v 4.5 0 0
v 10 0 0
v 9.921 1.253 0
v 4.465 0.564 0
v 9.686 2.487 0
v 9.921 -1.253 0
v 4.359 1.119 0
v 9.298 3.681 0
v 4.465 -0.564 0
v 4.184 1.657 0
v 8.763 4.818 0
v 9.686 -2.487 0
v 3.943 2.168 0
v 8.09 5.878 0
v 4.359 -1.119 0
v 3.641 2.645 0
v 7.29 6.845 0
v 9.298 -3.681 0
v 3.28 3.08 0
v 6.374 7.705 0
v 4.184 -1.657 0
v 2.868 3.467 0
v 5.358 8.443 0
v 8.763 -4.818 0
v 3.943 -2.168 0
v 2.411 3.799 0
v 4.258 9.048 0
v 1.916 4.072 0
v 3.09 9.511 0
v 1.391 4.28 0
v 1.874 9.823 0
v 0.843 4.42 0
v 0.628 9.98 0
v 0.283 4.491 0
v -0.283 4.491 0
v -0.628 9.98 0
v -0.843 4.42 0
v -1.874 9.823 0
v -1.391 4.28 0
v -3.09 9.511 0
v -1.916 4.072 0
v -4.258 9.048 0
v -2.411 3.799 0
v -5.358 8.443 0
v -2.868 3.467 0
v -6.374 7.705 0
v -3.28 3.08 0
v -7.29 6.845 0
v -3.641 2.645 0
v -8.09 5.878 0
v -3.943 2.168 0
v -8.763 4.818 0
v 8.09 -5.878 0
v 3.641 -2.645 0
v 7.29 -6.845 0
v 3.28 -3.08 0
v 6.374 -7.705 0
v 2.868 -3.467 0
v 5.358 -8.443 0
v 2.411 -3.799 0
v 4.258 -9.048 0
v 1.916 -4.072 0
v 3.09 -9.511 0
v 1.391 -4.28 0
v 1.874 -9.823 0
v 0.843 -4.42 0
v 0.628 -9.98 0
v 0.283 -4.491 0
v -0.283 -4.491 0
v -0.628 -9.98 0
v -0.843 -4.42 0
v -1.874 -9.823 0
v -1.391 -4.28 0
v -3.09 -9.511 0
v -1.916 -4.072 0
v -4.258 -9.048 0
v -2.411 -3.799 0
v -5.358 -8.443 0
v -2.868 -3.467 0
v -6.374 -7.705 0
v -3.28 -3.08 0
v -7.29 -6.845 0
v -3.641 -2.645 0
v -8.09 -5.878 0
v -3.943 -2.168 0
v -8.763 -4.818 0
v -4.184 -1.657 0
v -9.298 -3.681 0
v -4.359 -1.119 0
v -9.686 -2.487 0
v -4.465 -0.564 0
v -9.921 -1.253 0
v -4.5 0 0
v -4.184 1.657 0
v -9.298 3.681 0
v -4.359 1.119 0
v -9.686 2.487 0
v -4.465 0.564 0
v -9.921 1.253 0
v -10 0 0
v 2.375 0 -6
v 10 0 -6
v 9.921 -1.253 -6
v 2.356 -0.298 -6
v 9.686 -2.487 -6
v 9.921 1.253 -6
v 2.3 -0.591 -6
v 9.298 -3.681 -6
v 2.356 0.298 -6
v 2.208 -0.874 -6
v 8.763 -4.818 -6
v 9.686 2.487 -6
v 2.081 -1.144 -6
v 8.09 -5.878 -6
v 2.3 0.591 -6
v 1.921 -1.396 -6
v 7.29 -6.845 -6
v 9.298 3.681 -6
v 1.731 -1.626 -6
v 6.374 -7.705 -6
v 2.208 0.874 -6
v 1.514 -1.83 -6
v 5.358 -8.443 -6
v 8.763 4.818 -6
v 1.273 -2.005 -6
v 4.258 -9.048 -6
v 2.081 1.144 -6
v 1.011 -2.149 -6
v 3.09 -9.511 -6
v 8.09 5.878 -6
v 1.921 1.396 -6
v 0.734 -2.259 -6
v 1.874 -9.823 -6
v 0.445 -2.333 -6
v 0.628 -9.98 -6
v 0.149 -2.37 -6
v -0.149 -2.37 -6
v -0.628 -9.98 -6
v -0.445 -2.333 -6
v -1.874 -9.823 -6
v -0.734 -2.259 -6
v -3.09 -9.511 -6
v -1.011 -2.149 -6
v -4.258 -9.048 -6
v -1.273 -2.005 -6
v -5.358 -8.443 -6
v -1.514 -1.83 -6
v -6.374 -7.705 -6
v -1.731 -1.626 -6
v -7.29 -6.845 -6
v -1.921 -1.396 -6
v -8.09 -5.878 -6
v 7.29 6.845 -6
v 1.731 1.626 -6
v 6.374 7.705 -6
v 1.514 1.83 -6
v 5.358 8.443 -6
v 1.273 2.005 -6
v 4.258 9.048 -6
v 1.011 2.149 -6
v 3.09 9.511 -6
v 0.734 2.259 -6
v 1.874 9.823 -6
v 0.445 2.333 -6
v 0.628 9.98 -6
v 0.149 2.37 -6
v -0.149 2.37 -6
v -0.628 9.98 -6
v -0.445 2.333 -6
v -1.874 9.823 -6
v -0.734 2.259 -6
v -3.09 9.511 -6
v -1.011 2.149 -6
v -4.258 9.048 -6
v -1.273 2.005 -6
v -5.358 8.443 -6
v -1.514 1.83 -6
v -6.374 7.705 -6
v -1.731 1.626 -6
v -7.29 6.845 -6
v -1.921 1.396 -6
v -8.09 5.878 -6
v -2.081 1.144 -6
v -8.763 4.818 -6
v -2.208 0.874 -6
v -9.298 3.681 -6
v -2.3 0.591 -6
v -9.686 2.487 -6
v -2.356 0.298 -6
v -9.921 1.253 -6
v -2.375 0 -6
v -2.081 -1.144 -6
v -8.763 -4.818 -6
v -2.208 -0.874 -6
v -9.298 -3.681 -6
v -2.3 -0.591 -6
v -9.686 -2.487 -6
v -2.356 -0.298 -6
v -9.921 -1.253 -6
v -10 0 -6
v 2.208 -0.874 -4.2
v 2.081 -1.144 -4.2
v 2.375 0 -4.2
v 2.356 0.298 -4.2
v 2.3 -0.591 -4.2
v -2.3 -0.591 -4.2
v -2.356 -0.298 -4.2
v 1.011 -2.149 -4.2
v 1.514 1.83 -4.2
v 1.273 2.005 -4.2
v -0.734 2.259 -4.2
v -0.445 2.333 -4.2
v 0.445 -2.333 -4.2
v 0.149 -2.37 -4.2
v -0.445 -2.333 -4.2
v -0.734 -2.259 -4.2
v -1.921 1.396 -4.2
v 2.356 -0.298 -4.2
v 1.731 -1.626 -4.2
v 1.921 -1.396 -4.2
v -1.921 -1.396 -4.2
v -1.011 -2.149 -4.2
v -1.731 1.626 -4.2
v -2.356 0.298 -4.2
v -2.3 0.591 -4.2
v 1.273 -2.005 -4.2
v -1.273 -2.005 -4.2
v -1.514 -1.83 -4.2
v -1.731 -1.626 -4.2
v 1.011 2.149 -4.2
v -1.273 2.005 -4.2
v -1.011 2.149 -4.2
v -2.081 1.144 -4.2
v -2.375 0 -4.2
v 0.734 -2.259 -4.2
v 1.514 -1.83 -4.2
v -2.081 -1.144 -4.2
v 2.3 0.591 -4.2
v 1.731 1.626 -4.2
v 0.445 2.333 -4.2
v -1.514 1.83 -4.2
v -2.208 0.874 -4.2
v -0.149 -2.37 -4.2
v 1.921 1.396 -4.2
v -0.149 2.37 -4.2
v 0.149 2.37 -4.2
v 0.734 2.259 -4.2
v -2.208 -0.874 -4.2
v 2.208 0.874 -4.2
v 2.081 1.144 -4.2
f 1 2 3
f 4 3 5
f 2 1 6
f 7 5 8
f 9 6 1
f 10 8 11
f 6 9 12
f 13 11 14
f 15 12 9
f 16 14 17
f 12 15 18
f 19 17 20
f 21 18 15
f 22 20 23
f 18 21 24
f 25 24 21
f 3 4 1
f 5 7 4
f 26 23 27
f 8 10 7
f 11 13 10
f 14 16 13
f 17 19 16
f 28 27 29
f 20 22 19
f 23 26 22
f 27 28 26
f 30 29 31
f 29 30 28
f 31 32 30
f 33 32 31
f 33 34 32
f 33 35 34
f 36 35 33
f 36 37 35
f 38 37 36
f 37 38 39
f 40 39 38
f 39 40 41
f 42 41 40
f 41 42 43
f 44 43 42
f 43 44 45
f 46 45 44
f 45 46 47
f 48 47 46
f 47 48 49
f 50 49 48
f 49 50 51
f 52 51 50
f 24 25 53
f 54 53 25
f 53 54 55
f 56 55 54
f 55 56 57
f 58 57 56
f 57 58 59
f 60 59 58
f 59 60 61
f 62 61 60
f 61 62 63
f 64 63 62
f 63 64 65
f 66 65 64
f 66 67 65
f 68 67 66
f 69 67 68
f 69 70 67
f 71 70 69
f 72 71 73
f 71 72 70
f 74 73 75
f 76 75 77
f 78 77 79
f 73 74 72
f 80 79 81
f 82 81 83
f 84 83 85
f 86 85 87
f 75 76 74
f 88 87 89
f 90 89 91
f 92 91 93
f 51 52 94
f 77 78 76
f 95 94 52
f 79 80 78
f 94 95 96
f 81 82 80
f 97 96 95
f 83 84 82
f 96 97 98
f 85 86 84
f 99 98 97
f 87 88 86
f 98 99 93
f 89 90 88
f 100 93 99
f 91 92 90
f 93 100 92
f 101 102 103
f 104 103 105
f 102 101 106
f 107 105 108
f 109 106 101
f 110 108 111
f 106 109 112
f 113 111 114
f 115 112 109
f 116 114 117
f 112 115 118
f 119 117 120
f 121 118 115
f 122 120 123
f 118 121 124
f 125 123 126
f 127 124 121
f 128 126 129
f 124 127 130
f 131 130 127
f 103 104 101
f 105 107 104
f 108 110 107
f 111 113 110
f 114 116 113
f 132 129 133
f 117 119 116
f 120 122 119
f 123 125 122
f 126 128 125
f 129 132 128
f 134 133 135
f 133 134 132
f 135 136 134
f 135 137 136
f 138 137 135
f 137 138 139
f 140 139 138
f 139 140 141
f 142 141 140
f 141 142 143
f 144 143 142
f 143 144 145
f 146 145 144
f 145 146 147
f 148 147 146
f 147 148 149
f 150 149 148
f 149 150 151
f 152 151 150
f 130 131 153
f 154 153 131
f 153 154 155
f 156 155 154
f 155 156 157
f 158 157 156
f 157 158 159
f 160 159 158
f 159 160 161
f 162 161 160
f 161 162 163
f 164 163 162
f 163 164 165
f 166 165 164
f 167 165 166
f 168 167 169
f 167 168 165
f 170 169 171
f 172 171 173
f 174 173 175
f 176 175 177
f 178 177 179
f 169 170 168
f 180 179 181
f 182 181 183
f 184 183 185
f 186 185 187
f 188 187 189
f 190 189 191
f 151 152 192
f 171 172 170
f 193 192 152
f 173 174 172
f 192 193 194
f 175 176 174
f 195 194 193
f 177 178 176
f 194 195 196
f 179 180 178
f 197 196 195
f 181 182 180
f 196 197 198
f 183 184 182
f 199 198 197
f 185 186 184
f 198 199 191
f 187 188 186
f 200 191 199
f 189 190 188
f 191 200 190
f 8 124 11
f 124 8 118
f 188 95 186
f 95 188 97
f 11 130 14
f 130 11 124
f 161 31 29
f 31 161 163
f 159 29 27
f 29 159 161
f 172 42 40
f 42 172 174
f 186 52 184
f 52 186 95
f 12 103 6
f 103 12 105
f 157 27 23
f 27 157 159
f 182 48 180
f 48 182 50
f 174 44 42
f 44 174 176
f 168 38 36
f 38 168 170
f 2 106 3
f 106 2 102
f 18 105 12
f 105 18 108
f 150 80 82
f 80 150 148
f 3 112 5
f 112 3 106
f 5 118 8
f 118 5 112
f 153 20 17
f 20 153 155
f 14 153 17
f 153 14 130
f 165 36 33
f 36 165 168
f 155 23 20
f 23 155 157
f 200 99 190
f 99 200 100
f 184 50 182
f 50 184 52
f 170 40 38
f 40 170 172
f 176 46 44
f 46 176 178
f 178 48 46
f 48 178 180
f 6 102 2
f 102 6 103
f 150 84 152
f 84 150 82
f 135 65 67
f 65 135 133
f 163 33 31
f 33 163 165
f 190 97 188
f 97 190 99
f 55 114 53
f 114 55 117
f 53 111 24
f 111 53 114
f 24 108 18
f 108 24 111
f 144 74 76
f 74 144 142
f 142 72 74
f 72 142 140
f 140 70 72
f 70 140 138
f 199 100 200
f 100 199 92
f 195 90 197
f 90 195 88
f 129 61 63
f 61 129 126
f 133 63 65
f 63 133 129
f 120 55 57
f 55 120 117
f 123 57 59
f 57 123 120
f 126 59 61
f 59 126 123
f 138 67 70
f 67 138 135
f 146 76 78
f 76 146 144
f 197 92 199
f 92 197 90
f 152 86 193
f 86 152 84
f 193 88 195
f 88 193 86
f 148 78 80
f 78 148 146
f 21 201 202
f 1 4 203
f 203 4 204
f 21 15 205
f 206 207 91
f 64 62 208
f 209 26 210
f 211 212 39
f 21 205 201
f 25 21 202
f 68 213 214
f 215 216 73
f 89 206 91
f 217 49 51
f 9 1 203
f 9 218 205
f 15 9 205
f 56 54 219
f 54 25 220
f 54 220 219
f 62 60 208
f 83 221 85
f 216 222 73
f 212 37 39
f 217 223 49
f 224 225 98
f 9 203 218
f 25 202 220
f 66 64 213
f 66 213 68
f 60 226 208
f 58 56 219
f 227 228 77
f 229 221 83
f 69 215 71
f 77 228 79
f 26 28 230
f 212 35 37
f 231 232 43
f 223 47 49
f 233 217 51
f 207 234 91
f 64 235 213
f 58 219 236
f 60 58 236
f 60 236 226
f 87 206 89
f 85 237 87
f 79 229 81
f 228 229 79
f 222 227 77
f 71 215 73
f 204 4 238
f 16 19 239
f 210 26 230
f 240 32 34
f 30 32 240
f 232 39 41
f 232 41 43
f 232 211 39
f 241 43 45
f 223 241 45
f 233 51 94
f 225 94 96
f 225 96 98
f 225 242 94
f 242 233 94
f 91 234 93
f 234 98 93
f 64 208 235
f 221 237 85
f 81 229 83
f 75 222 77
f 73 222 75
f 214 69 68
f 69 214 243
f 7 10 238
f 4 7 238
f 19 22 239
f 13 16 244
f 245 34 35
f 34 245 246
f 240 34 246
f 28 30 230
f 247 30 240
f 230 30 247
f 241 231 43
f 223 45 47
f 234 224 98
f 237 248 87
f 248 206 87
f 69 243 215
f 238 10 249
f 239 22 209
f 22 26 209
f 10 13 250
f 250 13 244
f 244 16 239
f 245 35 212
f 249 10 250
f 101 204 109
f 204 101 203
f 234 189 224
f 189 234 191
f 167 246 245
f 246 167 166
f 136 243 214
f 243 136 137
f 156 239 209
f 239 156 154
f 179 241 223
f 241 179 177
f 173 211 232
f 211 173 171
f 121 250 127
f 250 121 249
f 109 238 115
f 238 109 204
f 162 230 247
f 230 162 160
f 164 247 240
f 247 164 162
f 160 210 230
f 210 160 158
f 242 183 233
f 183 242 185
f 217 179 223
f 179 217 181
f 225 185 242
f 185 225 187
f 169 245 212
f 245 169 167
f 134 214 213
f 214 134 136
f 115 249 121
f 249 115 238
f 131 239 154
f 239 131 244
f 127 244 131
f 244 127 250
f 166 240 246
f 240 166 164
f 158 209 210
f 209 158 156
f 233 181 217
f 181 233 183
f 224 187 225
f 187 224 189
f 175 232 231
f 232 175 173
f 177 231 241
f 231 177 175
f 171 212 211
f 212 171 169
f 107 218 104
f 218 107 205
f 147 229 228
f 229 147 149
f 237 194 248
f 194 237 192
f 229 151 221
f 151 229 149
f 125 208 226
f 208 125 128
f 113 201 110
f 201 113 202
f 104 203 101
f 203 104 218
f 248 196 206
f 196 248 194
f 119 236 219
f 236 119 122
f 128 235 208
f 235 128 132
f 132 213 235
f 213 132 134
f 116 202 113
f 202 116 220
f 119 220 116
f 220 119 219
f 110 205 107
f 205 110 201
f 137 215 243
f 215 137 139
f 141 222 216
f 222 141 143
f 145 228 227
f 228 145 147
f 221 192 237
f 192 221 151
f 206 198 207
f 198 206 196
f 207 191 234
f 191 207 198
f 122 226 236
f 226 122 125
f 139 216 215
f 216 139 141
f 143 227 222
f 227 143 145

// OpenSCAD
$fn = 50;


difference() {
	union() {
		translate(v = [0, 0, -6.0000000000]) {
			cylinder(h = 6, r = 7.0000000000);
		}
		translate(v = [0, 0, -6.0000000000]) {
			cylinder(h = 6, r = 10.0000000000);
		}
	}
	union() {
		translate(v = [0, 0, 0]) {
			rotate(a = [0, 0, 0]) {
				difference() {
					union() {
						#translate(v = [0, 0, -6.0000000000]) {
							cylinder(h = 6, r = 2.2500000000);
						}
						#translate(v = [0, 0, -4.2000000000]) {
							cylinder(h = 4.2000000000, r1 = 2.3750000000, r2 = 4.5000000000);
						}
						#translate(v = [0, 0, -6.0000000000]) {
							cylinder(h = 6, r = 2.3750000000);
						}
						#translate(v = [0, 0, -6.0000000000]) {
							cylinder(h = 6, r = 2.2500000000);
						}
					}
					union();
				}
			}
		}
	}
}
